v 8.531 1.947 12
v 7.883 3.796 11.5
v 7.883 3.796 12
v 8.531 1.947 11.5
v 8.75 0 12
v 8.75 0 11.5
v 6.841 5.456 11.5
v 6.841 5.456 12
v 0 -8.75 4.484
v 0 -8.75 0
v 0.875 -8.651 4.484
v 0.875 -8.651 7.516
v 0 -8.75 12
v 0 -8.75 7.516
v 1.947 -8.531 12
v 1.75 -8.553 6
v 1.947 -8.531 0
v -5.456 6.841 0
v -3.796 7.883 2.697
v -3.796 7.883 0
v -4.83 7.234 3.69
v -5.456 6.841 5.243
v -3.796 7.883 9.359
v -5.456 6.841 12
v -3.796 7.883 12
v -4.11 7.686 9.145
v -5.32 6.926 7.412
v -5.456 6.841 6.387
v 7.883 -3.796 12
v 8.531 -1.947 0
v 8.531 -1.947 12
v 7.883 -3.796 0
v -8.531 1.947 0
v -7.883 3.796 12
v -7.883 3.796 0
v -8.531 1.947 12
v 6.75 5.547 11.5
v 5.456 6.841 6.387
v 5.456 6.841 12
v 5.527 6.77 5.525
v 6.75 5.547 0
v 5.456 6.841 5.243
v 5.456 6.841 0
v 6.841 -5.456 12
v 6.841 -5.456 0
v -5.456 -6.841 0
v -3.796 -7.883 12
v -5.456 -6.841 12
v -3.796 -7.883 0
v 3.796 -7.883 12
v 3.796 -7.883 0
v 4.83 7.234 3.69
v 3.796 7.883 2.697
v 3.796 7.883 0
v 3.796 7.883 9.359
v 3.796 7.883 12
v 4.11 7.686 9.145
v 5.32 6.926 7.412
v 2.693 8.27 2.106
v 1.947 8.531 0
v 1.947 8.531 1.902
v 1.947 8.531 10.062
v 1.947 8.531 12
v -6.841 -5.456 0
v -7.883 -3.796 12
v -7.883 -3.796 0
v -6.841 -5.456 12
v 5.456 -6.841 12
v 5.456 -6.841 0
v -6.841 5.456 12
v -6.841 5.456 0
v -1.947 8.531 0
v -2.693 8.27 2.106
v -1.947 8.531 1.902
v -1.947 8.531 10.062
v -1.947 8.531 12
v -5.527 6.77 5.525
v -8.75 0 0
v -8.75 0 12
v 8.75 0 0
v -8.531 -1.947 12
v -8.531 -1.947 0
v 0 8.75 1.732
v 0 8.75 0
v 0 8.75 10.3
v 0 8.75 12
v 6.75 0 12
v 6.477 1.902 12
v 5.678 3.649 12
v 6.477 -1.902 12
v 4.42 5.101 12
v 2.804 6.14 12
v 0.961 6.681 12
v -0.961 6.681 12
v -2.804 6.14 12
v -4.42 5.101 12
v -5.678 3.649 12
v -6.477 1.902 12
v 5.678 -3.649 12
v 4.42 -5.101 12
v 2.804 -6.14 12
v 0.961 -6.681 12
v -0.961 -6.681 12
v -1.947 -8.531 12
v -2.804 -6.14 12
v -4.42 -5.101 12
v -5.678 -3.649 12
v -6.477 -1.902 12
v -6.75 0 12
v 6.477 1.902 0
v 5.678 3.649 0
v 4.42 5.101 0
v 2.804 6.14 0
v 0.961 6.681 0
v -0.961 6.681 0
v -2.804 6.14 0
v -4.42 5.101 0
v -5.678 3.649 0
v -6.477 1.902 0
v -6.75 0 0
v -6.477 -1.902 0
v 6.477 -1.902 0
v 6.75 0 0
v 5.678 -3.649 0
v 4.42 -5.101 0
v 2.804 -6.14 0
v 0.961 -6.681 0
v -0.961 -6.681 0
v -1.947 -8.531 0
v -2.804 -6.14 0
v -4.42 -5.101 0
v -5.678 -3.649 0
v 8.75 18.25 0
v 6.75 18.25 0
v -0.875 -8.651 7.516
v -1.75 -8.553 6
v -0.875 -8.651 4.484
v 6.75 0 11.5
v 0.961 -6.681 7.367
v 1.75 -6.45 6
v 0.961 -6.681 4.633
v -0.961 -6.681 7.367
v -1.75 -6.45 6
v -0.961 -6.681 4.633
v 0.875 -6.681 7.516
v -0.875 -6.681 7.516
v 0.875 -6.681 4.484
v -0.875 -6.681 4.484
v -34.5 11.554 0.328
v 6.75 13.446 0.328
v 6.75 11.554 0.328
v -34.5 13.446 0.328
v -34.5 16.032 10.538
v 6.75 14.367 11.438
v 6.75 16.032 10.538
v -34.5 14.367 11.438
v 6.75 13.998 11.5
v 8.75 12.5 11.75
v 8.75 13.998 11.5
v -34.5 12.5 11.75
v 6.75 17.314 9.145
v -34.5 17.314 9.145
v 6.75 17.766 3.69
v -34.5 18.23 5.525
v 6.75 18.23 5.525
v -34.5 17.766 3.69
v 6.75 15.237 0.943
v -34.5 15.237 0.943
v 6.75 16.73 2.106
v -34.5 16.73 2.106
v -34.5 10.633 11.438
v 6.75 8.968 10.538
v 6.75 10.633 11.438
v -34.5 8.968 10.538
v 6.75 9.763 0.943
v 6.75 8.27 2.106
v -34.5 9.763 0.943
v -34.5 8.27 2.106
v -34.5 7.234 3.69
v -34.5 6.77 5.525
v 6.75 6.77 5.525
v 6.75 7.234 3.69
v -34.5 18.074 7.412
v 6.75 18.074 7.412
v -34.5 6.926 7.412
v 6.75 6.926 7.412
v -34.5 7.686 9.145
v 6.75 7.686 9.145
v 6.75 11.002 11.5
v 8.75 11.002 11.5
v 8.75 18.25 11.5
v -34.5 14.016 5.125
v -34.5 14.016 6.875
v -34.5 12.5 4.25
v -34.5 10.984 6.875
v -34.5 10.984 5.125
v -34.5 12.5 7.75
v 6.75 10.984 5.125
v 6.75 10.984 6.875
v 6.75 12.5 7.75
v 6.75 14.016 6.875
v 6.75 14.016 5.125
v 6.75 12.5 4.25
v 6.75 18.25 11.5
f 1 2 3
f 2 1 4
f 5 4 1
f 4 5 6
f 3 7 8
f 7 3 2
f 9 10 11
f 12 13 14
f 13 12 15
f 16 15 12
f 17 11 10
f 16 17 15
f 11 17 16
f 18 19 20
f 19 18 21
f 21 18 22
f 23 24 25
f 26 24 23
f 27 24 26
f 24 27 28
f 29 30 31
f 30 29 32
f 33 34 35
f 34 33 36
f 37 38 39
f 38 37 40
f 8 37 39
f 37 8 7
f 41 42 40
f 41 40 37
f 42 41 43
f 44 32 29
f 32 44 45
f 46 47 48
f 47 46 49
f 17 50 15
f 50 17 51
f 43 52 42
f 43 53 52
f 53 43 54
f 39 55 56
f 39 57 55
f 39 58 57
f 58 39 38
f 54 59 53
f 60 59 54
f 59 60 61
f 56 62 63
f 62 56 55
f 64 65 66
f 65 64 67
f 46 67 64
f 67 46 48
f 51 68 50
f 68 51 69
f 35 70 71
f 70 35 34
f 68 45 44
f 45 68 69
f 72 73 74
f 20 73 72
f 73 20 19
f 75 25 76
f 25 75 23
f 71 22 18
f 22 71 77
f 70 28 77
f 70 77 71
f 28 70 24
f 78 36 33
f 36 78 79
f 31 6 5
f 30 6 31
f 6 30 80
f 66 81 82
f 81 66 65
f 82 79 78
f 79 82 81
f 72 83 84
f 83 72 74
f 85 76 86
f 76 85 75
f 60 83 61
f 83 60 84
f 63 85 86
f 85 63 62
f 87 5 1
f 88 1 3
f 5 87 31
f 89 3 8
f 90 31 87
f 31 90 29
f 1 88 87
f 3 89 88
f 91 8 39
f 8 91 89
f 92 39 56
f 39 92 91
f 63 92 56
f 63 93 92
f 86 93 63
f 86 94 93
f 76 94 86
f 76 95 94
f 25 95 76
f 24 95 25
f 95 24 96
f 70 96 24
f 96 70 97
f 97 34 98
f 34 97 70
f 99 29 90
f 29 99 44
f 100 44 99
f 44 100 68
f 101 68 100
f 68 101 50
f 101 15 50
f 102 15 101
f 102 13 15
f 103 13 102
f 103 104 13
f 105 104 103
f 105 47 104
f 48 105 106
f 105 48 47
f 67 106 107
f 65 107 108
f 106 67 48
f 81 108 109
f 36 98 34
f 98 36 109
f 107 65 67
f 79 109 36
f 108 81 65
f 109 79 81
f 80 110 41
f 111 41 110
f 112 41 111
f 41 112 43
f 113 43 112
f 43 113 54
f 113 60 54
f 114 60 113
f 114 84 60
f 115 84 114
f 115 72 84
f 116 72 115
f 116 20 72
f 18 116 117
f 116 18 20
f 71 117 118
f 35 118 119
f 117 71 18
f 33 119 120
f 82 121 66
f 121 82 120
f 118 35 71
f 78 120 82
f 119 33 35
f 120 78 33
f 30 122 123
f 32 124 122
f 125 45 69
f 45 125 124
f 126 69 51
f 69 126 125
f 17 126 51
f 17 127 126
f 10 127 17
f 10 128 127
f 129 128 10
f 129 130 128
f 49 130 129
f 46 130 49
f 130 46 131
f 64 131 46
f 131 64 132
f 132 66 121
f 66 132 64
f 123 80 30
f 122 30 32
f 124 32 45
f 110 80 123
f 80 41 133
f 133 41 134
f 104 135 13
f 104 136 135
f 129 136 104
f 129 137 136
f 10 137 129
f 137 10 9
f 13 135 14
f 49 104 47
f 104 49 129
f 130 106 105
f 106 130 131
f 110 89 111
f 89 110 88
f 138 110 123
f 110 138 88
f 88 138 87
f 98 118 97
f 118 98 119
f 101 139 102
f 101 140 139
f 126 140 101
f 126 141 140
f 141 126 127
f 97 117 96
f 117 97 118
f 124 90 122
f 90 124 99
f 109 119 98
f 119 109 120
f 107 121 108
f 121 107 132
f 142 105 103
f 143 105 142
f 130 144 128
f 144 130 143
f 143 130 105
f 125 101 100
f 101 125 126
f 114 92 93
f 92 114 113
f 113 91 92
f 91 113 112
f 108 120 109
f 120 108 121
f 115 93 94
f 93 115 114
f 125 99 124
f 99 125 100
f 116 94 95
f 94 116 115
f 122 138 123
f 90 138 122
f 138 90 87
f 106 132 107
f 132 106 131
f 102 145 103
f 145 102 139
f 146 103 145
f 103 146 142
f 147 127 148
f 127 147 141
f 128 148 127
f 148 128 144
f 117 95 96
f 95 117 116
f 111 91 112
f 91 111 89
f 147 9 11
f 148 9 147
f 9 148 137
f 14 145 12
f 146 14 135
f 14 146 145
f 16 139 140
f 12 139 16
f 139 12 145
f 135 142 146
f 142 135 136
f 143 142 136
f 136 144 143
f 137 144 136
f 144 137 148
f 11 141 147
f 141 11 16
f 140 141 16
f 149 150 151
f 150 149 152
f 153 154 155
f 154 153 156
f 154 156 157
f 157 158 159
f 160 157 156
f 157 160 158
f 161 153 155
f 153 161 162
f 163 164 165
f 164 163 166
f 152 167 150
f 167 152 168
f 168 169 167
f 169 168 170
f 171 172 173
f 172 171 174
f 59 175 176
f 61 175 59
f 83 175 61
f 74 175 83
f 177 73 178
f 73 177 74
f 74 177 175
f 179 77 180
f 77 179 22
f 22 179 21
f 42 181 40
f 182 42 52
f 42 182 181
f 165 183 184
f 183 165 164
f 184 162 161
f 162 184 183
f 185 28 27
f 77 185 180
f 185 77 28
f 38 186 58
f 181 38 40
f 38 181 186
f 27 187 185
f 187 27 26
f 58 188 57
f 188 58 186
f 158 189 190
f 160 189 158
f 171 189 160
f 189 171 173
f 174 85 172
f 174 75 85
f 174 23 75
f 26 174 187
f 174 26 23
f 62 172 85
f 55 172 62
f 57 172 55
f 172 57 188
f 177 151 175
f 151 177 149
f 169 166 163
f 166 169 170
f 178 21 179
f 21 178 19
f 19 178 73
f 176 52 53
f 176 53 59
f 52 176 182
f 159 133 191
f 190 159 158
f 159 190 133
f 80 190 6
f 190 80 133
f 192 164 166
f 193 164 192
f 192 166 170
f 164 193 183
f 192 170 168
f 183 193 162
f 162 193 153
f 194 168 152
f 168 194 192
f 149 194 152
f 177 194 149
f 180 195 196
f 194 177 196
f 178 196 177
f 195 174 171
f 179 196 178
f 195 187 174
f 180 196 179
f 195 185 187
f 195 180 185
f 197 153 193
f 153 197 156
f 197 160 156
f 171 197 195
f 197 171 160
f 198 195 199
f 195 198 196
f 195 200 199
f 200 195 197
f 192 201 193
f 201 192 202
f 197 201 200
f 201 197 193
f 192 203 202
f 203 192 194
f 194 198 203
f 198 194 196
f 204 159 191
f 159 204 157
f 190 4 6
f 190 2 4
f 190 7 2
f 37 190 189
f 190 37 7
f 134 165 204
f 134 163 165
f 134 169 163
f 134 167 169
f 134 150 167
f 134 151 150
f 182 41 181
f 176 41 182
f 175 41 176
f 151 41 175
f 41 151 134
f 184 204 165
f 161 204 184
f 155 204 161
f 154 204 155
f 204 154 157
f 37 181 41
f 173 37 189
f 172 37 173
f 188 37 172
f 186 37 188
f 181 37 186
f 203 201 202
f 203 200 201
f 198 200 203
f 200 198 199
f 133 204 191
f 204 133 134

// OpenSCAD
union() {
	difference() {
		cylinder(d = 17.5000000000, h = 12);
		translate(v = [0, 0, -6.0000000000]) {
			cylinder(d = 13.5000000000, h = 24);
		}
		translate(v = [0, 0, 6.0000000000]) {
			rotate(a = [90, 0, 0]) {
				cylinder(d = 3.5000000000, h = 30);
			}
		}
	}
	translate(v = [0, 0, 6.0000000000]) {
		translate(v = [0, 12.5000000000, 0]) {
			translate(v = [8.7500000000, 0, 0]) {
				rotate(a = [0, 270, 0]) {
					union() {
						difference() {
							cylinder(d = 11.5000000000, h = 43.2500000000);
							translate(v = [0, 0, -21.6250000000]) {
								cylinder(d = 3.5000000000, h = 86.5000000000);
							}
						}
						translate(v = [0, 0, 1.7500000000]) {
							difference() {
								cylinder(d = 7.7500000000, h = 3.5000000000);
								translate(v = [0, 0, -1.7500000000]) {
									cylinder(d = 3.5000000000, h = 7.0000000000);
								}
							}
						}
					}
				}
			}
		}
	}
	translate(v = [7.7500000000, 0, 0]) {
		translate(v = [0, 9.1250000000, 0]) {
			translate(v = [0, 0, 5.7500000000]) {
				cube(center = true, size = [2, 18.2500000000, 11.5000000000]);
			}
		}
	}
}
